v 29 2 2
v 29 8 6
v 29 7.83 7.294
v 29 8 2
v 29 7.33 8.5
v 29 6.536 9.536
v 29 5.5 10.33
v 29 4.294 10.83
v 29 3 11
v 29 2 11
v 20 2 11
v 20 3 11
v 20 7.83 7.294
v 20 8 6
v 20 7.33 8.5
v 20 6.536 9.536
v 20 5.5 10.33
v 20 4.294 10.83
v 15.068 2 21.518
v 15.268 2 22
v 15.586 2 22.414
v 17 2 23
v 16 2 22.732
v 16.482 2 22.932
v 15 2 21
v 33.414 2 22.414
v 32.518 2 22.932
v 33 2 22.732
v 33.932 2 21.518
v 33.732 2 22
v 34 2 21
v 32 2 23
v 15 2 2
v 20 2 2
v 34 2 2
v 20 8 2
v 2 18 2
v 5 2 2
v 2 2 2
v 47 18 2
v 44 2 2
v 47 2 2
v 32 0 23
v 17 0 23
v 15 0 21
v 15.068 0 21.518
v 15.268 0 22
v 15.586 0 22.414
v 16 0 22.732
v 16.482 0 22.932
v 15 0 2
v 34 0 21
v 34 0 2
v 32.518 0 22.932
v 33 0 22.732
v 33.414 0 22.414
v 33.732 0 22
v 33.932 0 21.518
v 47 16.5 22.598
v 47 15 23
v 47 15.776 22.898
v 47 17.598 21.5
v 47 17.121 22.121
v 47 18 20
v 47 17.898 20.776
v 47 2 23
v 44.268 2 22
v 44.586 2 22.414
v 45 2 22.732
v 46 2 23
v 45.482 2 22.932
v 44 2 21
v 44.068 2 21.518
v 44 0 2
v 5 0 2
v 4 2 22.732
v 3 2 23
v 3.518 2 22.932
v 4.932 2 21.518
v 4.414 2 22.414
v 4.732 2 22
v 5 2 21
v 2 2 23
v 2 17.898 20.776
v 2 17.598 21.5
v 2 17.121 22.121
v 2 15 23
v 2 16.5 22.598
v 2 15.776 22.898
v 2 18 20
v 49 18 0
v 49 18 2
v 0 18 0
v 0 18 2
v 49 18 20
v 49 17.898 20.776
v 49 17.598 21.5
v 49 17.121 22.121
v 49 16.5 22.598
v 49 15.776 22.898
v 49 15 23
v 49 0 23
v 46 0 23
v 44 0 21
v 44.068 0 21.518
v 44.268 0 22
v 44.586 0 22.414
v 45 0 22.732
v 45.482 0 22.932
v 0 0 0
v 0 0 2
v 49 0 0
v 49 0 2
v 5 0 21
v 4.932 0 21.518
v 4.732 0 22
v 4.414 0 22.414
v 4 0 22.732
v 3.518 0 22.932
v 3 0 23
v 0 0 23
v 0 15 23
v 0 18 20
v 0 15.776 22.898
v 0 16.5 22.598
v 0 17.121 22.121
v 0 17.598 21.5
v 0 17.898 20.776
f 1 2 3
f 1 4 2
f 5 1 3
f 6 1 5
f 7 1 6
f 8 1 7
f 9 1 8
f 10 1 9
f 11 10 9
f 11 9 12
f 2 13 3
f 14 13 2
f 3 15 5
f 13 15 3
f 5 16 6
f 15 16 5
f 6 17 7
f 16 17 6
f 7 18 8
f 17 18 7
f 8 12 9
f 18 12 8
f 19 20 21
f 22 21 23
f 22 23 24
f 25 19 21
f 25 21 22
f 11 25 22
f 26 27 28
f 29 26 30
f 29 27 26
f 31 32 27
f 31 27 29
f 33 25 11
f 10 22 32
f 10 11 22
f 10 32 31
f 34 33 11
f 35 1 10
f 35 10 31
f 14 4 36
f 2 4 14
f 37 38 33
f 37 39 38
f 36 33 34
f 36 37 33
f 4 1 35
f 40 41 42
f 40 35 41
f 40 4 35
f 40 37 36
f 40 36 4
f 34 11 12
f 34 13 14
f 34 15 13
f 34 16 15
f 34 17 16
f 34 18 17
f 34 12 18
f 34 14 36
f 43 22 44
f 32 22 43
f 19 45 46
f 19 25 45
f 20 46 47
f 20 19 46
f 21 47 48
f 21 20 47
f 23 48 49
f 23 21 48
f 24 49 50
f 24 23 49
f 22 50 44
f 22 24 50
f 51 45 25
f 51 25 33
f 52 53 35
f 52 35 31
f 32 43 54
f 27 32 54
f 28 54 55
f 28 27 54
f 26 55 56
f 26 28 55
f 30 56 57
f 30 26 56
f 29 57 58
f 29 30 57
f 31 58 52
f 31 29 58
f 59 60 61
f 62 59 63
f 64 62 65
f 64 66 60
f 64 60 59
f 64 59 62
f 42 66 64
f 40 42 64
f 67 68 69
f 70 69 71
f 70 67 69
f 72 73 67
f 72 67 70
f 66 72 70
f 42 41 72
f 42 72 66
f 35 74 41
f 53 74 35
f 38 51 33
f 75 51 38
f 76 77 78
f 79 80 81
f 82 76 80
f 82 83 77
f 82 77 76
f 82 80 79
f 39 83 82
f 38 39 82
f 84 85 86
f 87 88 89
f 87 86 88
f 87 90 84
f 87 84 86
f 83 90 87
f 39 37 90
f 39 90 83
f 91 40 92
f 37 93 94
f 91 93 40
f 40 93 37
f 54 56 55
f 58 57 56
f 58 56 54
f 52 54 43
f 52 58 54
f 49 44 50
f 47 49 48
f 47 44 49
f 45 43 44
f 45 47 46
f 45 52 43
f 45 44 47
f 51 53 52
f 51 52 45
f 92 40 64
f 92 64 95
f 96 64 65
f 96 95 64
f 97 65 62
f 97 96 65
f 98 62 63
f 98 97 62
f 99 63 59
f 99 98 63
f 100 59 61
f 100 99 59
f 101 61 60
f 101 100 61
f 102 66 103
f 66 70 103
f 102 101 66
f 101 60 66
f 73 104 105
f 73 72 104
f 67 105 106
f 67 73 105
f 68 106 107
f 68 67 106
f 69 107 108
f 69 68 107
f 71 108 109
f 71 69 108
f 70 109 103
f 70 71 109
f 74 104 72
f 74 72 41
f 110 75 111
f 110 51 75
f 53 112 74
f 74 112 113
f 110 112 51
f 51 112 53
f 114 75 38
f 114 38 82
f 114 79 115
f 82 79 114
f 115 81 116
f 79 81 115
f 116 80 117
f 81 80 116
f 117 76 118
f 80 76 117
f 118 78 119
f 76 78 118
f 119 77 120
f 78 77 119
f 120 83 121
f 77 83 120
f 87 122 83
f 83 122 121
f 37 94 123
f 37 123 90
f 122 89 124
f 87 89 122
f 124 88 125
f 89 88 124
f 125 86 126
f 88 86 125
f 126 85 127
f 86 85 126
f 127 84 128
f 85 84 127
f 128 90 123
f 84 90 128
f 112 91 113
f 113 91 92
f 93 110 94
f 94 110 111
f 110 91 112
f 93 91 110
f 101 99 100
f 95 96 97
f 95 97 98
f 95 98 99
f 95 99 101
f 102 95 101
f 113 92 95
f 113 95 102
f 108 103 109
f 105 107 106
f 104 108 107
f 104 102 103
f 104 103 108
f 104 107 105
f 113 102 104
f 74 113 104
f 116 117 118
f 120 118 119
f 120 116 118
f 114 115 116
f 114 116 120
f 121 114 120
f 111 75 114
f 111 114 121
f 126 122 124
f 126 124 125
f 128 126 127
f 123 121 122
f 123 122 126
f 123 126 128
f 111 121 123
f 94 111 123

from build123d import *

# Parameters (mm, degrees)
SKETCH_W        = 49
SKETCH_H        = 18
PAD_DEPTH       = 2
PAD001_DEPTH    = 21
SKETCH002_W     = 10
SKETCH002_H     = 21
POCKET_DEPTH    = 2
SKETCH003_W     = 10
SKETCH003_H     = 21
POCKET001_DEPTH = 2
FILLET_R        = 3
FILLET001_R     = 3
FILLET002_R     = 2
FILLET003_R     = 2
FILLET004_R     = 2
FILLET005_R     = 2
SKETCH004_W     = 9
SKETCH004_H     = 9
PAD002_DEPTH    = 6
FILLET006_R     = 5


with BuildPart() as part:
    # Sketch → Pad (new body)
    with BuildSketch(Plane.XY):
        with Locations((24.5, 9)):
            Rectangle(SKETCH_W, SKETCH_H)
    extrude(amount=PAD_DEPTH)

    # Sketch001 (on Face6 of Pad) → Pad001 (join)
    with BuildSketch(Plane.XY.offset(2)):
        Polygon((2, 18), (2, 2), (47, 2), (47, 18), (49, 18), (49, 0), (0, 0), (0, 18), align=None)
    extrude(amount=PAD001_DEPTH)

    # Sketch002 (on Face5 of Pad001) → Pocket (cut)
    with BuildSketch(Plane.XZ):
        with Locations((10, 12.5)):
            Rectangle(SKETCH002_W, SKETCH002_H)
    extrude(amount=-POCKET_DEPTH, mode=Mode.SUBTRACT)

    # Sketch003 (on Face7 of Pocket) → Pocket001 (cut)
    with BuildSketch(Plane.XZ):
        with Locations((39, 12.5)):
            Rectangle(SKETCH003_W, SKETCH003_H)
    extrude(amount=-POCKET001_DEPTH, mode=Mode.SUBTRACT)

    # Fillet
    fillet_edges = [part.edges().sort_by_distance(p)[0] for p in [
        (1, 18, 23),
    ]]
    fillet(fillet_edges, radius=FILLET_R)

    # Fillet001
    fillet001_edges = [part.edges().sort_by_distance(p)[0] for p in [
        (48, 18, 23),
    ]]
    fillet(fillet001_edges, radius=FILLET001_R)

    # Fillet002
    fillet002_edges = [part.edges().sort_by_distance(p)[0] for p in [
        (5, 1, 23),
    ]]
    fillet(fillet002_edges, radius=FILLET002_R)

    # Fillet003
    fillet003_edges = [part.edges().sort_by_distance(p)[0] for p in [
        (15, 1, 23),
    ]]
    fillet(fillet003_edges, radius=FILLET003_R)

    # Fillet004
    fillet004_edges = [part.edges().sort_by_distance(p)[0] for p in [
        (34, 1, 23),
    ]]
    fillet(fillet004_edges, radius=FILLET004_R)

    # Fillet005
    fillet005_edges = [part.edges().sort_by_distance(p)[0] for p in [
        (44, 1, 23),
    ]]
    fillet(fillet005_edges, radius=FILLET005_R)

    # Sketch004 (on Face15 of Fillet005) → Pad002 (join)
    with BuildSketch(Plane(origin=(0, 2, 0), x_dir=(-1, 0, 0), z_dir=(0, 1, 0))):
        with Locations((-24.5, 6.5)):
            Rectangle(SKETCH004_W, SKETCH004_H)
    extrude(amount=PAD002_DEPTH)

    # Fillet006
    fillet006_edges = [part.edges().sort_by_distance(p)[0] for p in [
        (24.5, 8, 11),
    ]]
    fillet(fillet006_edges, radius=FILLET006_R)


solid = part.part
